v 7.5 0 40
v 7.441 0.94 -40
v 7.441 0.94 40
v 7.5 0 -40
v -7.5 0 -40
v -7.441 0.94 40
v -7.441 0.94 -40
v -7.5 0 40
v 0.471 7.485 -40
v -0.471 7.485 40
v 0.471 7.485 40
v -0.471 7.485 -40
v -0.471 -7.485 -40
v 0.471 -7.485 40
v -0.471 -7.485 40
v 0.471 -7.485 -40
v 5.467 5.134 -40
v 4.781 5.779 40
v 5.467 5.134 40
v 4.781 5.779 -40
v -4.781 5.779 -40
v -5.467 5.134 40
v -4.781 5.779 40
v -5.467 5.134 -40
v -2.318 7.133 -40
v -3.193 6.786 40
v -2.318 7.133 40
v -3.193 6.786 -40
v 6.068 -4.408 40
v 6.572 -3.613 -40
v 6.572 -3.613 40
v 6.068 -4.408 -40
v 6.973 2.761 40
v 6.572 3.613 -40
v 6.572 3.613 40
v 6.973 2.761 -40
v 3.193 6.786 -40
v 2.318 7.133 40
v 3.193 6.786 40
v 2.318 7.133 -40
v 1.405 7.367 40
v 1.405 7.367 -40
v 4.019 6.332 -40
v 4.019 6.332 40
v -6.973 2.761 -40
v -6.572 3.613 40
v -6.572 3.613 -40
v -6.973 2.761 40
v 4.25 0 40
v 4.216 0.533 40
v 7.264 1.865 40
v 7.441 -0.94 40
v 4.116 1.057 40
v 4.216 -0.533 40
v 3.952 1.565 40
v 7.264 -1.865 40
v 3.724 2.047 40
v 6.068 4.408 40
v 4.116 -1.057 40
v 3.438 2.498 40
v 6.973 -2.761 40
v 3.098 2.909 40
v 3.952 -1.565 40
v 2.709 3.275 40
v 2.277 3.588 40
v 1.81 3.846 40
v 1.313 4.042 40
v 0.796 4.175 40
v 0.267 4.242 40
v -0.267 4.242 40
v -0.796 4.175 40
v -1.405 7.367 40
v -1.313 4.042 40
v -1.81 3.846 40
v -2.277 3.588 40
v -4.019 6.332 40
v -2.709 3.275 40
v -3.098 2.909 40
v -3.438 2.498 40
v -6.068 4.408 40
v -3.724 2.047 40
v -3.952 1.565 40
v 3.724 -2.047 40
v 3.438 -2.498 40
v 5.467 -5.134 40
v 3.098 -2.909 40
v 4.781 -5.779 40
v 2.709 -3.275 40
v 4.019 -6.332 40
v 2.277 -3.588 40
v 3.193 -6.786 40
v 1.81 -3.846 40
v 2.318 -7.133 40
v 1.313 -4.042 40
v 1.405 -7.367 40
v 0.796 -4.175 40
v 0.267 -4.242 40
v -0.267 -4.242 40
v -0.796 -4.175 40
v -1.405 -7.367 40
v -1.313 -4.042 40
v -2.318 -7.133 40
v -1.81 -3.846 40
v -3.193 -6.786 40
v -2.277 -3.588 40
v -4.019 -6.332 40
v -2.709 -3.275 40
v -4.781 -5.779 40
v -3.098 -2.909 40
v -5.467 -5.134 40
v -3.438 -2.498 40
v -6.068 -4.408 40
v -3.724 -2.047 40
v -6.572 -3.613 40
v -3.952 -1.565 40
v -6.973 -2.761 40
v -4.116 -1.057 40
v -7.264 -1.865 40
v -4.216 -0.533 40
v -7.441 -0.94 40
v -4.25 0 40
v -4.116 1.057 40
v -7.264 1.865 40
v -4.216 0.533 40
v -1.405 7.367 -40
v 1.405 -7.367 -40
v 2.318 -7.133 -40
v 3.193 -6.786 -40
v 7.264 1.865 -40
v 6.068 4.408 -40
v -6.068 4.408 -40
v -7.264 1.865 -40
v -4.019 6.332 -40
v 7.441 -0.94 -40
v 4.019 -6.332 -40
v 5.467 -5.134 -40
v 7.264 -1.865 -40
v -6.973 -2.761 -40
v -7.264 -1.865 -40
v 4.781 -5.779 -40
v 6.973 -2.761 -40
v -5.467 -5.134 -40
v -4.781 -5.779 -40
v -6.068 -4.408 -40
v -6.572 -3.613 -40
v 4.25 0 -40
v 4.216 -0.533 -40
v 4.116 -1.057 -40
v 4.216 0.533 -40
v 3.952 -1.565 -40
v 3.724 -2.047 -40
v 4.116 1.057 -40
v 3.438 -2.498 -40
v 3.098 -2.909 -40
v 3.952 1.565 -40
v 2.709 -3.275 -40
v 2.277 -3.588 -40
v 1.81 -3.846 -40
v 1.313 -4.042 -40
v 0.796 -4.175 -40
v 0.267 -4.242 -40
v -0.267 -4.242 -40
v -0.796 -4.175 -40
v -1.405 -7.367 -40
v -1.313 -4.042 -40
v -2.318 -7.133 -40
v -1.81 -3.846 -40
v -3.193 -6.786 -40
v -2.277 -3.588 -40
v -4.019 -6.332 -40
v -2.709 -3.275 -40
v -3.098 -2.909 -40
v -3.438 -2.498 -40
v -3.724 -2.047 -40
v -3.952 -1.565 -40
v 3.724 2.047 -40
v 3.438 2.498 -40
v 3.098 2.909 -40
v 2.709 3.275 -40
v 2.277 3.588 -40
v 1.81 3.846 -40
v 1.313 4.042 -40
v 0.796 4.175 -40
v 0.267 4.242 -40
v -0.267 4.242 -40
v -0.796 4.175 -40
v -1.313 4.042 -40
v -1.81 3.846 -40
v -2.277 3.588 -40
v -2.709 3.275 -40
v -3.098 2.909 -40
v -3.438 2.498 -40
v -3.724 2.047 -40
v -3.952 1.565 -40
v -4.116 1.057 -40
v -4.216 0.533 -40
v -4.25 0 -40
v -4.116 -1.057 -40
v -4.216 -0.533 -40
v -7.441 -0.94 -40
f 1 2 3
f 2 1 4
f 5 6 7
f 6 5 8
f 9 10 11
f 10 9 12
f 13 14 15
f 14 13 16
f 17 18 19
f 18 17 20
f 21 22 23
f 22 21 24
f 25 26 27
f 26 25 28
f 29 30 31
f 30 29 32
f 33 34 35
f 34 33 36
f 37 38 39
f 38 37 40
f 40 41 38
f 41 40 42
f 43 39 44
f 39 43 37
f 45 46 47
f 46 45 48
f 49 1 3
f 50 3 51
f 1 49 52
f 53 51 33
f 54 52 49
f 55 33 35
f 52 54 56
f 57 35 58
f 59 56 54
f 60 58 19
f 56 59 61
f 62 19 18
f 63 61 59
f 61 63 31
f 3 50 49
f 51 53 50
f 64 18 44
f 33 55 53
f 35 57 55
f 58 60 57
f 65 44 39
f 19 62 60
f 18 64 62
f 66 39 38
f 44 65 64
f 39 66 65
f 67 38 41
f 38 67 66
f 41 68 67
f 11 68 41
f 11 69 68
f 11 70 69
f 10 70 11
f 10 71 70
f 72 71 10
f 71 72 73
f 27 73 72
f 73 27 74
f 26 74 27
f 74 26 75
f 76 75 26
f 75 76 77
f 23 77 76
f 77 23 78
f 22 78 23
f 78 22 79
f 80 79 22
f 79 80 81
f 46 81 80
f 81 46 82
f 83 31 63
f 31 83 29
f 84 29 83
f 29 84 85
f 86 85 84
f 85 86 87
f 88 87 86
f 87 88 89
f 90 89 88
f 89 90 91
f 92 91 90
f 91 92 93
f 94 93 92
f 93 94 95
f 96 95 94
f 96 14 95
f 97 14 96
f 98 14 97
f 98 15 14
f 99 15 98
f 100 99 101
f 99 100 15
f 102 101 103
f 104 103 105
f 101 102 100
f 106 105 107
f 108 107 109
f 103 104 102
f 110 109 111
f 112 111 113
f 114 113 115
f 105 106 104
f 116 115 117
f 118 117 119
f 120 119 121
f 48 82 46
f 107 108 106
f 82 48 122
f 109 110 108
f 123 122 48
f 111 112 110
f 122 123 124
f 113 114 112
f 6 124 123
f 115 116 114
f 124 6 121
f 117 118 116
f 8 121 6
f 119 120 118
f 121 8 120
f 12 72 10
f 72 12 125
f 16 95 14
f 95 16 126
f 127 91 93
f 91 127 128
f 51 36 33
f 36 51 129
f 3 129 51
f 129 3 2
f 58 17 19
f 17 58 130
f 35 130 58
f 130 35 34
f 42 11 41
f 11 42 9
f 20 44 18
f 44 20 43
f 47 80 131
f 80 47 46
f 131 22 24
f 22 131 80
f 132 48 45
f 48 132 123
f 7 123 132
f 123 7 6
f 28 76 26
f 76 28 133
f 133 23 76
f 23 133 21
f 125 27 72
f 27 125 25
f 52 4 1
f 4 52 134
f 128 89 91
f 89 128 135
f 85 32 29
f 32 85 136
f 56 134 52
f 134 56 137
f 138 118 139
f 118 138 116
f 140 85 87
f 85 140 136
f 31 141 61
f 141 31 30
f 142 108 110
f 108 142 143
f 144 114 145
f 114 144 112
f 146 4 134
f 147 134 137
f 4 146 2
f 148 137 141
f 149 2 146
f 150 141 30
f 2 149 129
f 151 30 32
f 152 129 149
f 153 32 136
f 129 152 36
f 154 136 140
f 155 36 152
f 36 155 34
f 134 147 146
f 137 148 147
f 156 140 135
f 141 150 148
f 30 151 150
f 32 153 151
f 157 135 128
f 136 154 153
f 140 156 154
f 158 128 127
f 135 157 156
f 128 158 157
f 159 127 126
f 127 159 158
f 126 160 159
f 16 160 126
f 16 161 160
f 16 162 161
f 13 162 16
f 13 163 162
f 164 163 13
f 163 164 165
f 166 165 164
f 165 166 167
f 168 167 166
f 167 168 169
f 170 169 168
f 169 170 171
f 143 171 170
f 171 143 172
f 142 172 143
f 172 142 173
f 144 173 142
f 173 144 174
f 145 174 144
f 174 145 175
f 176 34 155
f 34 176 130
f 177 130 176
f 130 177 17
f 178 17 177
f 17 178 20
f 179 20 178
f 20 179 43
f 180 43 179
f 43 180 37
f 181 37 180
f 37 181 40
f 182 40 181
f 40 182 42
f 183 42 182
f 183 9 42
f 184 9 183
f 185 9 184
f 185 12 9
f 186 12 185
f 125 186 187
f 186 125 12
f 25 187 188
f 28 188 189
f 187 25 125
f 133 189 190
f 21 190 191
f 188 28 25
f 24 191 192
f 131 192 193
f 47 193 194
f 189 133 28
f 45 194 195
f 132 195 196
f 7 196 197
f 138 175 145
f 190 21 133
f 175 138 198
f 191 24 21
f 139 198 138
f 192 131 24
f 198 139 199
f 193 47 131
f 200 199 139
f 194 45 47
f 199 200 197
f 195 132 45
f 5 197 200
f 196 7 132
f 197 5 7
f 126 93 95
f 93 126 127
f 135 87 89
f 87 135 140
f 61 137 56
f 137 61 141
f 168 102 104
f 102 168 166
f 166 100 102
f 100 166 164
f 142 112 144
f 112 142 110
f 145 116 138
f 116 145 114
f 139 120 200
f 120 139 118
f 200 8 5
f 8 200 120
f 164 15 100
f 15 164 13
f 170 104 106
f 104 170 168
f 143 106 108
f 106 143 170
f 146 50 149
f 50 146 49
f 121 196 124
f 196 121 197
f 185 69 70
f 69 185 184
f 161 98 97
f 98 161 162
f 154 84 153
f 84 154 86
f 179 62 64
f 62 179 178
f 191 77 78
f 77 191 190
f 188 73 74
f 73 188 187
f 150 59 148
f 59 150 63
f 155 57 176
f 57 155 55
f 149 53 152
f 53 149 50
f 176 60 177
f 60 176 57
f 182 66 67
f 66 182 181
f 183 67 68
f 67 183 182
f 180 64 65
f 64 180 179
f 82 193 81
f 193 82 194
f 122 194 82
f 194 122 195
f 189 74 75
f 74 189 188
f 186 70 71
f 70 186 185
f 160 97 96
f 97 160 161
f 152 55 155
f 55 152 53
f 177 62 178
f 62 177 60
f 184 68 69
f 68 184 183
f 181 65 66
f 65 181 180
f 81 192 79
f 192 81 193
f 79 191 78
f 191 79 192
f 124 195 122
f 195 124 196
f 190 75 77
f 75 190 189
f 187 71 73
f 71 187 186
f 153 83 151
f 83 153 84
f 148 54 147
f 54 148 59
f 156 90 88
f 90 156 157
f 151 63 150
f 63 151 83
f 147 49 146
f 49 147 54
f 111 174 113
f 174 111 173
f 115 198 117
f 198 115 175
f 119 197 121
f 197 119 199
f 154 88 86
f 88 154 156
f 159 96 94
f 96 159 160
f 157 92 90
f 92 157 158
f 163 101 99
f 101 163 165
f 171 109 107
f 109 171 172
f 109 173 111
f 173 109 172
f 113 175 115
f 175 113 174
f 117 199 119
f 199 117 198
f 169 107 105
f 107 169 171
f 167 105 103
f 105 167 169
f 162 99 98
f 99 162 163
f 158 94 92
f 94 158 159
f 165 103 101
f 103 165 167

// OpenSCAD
$fn = 50;


difference() {
	union() {
		translate(v = [0, 0, -40.0000000000]) {
			cylinder(h = 80, r = 7.5000000000);
		}
	}
	union() {
		translate(v = [0, 0, -100.0000000000]) {
			cylinder(h = 200, r = 4.2500000000);
		}
	}
}
